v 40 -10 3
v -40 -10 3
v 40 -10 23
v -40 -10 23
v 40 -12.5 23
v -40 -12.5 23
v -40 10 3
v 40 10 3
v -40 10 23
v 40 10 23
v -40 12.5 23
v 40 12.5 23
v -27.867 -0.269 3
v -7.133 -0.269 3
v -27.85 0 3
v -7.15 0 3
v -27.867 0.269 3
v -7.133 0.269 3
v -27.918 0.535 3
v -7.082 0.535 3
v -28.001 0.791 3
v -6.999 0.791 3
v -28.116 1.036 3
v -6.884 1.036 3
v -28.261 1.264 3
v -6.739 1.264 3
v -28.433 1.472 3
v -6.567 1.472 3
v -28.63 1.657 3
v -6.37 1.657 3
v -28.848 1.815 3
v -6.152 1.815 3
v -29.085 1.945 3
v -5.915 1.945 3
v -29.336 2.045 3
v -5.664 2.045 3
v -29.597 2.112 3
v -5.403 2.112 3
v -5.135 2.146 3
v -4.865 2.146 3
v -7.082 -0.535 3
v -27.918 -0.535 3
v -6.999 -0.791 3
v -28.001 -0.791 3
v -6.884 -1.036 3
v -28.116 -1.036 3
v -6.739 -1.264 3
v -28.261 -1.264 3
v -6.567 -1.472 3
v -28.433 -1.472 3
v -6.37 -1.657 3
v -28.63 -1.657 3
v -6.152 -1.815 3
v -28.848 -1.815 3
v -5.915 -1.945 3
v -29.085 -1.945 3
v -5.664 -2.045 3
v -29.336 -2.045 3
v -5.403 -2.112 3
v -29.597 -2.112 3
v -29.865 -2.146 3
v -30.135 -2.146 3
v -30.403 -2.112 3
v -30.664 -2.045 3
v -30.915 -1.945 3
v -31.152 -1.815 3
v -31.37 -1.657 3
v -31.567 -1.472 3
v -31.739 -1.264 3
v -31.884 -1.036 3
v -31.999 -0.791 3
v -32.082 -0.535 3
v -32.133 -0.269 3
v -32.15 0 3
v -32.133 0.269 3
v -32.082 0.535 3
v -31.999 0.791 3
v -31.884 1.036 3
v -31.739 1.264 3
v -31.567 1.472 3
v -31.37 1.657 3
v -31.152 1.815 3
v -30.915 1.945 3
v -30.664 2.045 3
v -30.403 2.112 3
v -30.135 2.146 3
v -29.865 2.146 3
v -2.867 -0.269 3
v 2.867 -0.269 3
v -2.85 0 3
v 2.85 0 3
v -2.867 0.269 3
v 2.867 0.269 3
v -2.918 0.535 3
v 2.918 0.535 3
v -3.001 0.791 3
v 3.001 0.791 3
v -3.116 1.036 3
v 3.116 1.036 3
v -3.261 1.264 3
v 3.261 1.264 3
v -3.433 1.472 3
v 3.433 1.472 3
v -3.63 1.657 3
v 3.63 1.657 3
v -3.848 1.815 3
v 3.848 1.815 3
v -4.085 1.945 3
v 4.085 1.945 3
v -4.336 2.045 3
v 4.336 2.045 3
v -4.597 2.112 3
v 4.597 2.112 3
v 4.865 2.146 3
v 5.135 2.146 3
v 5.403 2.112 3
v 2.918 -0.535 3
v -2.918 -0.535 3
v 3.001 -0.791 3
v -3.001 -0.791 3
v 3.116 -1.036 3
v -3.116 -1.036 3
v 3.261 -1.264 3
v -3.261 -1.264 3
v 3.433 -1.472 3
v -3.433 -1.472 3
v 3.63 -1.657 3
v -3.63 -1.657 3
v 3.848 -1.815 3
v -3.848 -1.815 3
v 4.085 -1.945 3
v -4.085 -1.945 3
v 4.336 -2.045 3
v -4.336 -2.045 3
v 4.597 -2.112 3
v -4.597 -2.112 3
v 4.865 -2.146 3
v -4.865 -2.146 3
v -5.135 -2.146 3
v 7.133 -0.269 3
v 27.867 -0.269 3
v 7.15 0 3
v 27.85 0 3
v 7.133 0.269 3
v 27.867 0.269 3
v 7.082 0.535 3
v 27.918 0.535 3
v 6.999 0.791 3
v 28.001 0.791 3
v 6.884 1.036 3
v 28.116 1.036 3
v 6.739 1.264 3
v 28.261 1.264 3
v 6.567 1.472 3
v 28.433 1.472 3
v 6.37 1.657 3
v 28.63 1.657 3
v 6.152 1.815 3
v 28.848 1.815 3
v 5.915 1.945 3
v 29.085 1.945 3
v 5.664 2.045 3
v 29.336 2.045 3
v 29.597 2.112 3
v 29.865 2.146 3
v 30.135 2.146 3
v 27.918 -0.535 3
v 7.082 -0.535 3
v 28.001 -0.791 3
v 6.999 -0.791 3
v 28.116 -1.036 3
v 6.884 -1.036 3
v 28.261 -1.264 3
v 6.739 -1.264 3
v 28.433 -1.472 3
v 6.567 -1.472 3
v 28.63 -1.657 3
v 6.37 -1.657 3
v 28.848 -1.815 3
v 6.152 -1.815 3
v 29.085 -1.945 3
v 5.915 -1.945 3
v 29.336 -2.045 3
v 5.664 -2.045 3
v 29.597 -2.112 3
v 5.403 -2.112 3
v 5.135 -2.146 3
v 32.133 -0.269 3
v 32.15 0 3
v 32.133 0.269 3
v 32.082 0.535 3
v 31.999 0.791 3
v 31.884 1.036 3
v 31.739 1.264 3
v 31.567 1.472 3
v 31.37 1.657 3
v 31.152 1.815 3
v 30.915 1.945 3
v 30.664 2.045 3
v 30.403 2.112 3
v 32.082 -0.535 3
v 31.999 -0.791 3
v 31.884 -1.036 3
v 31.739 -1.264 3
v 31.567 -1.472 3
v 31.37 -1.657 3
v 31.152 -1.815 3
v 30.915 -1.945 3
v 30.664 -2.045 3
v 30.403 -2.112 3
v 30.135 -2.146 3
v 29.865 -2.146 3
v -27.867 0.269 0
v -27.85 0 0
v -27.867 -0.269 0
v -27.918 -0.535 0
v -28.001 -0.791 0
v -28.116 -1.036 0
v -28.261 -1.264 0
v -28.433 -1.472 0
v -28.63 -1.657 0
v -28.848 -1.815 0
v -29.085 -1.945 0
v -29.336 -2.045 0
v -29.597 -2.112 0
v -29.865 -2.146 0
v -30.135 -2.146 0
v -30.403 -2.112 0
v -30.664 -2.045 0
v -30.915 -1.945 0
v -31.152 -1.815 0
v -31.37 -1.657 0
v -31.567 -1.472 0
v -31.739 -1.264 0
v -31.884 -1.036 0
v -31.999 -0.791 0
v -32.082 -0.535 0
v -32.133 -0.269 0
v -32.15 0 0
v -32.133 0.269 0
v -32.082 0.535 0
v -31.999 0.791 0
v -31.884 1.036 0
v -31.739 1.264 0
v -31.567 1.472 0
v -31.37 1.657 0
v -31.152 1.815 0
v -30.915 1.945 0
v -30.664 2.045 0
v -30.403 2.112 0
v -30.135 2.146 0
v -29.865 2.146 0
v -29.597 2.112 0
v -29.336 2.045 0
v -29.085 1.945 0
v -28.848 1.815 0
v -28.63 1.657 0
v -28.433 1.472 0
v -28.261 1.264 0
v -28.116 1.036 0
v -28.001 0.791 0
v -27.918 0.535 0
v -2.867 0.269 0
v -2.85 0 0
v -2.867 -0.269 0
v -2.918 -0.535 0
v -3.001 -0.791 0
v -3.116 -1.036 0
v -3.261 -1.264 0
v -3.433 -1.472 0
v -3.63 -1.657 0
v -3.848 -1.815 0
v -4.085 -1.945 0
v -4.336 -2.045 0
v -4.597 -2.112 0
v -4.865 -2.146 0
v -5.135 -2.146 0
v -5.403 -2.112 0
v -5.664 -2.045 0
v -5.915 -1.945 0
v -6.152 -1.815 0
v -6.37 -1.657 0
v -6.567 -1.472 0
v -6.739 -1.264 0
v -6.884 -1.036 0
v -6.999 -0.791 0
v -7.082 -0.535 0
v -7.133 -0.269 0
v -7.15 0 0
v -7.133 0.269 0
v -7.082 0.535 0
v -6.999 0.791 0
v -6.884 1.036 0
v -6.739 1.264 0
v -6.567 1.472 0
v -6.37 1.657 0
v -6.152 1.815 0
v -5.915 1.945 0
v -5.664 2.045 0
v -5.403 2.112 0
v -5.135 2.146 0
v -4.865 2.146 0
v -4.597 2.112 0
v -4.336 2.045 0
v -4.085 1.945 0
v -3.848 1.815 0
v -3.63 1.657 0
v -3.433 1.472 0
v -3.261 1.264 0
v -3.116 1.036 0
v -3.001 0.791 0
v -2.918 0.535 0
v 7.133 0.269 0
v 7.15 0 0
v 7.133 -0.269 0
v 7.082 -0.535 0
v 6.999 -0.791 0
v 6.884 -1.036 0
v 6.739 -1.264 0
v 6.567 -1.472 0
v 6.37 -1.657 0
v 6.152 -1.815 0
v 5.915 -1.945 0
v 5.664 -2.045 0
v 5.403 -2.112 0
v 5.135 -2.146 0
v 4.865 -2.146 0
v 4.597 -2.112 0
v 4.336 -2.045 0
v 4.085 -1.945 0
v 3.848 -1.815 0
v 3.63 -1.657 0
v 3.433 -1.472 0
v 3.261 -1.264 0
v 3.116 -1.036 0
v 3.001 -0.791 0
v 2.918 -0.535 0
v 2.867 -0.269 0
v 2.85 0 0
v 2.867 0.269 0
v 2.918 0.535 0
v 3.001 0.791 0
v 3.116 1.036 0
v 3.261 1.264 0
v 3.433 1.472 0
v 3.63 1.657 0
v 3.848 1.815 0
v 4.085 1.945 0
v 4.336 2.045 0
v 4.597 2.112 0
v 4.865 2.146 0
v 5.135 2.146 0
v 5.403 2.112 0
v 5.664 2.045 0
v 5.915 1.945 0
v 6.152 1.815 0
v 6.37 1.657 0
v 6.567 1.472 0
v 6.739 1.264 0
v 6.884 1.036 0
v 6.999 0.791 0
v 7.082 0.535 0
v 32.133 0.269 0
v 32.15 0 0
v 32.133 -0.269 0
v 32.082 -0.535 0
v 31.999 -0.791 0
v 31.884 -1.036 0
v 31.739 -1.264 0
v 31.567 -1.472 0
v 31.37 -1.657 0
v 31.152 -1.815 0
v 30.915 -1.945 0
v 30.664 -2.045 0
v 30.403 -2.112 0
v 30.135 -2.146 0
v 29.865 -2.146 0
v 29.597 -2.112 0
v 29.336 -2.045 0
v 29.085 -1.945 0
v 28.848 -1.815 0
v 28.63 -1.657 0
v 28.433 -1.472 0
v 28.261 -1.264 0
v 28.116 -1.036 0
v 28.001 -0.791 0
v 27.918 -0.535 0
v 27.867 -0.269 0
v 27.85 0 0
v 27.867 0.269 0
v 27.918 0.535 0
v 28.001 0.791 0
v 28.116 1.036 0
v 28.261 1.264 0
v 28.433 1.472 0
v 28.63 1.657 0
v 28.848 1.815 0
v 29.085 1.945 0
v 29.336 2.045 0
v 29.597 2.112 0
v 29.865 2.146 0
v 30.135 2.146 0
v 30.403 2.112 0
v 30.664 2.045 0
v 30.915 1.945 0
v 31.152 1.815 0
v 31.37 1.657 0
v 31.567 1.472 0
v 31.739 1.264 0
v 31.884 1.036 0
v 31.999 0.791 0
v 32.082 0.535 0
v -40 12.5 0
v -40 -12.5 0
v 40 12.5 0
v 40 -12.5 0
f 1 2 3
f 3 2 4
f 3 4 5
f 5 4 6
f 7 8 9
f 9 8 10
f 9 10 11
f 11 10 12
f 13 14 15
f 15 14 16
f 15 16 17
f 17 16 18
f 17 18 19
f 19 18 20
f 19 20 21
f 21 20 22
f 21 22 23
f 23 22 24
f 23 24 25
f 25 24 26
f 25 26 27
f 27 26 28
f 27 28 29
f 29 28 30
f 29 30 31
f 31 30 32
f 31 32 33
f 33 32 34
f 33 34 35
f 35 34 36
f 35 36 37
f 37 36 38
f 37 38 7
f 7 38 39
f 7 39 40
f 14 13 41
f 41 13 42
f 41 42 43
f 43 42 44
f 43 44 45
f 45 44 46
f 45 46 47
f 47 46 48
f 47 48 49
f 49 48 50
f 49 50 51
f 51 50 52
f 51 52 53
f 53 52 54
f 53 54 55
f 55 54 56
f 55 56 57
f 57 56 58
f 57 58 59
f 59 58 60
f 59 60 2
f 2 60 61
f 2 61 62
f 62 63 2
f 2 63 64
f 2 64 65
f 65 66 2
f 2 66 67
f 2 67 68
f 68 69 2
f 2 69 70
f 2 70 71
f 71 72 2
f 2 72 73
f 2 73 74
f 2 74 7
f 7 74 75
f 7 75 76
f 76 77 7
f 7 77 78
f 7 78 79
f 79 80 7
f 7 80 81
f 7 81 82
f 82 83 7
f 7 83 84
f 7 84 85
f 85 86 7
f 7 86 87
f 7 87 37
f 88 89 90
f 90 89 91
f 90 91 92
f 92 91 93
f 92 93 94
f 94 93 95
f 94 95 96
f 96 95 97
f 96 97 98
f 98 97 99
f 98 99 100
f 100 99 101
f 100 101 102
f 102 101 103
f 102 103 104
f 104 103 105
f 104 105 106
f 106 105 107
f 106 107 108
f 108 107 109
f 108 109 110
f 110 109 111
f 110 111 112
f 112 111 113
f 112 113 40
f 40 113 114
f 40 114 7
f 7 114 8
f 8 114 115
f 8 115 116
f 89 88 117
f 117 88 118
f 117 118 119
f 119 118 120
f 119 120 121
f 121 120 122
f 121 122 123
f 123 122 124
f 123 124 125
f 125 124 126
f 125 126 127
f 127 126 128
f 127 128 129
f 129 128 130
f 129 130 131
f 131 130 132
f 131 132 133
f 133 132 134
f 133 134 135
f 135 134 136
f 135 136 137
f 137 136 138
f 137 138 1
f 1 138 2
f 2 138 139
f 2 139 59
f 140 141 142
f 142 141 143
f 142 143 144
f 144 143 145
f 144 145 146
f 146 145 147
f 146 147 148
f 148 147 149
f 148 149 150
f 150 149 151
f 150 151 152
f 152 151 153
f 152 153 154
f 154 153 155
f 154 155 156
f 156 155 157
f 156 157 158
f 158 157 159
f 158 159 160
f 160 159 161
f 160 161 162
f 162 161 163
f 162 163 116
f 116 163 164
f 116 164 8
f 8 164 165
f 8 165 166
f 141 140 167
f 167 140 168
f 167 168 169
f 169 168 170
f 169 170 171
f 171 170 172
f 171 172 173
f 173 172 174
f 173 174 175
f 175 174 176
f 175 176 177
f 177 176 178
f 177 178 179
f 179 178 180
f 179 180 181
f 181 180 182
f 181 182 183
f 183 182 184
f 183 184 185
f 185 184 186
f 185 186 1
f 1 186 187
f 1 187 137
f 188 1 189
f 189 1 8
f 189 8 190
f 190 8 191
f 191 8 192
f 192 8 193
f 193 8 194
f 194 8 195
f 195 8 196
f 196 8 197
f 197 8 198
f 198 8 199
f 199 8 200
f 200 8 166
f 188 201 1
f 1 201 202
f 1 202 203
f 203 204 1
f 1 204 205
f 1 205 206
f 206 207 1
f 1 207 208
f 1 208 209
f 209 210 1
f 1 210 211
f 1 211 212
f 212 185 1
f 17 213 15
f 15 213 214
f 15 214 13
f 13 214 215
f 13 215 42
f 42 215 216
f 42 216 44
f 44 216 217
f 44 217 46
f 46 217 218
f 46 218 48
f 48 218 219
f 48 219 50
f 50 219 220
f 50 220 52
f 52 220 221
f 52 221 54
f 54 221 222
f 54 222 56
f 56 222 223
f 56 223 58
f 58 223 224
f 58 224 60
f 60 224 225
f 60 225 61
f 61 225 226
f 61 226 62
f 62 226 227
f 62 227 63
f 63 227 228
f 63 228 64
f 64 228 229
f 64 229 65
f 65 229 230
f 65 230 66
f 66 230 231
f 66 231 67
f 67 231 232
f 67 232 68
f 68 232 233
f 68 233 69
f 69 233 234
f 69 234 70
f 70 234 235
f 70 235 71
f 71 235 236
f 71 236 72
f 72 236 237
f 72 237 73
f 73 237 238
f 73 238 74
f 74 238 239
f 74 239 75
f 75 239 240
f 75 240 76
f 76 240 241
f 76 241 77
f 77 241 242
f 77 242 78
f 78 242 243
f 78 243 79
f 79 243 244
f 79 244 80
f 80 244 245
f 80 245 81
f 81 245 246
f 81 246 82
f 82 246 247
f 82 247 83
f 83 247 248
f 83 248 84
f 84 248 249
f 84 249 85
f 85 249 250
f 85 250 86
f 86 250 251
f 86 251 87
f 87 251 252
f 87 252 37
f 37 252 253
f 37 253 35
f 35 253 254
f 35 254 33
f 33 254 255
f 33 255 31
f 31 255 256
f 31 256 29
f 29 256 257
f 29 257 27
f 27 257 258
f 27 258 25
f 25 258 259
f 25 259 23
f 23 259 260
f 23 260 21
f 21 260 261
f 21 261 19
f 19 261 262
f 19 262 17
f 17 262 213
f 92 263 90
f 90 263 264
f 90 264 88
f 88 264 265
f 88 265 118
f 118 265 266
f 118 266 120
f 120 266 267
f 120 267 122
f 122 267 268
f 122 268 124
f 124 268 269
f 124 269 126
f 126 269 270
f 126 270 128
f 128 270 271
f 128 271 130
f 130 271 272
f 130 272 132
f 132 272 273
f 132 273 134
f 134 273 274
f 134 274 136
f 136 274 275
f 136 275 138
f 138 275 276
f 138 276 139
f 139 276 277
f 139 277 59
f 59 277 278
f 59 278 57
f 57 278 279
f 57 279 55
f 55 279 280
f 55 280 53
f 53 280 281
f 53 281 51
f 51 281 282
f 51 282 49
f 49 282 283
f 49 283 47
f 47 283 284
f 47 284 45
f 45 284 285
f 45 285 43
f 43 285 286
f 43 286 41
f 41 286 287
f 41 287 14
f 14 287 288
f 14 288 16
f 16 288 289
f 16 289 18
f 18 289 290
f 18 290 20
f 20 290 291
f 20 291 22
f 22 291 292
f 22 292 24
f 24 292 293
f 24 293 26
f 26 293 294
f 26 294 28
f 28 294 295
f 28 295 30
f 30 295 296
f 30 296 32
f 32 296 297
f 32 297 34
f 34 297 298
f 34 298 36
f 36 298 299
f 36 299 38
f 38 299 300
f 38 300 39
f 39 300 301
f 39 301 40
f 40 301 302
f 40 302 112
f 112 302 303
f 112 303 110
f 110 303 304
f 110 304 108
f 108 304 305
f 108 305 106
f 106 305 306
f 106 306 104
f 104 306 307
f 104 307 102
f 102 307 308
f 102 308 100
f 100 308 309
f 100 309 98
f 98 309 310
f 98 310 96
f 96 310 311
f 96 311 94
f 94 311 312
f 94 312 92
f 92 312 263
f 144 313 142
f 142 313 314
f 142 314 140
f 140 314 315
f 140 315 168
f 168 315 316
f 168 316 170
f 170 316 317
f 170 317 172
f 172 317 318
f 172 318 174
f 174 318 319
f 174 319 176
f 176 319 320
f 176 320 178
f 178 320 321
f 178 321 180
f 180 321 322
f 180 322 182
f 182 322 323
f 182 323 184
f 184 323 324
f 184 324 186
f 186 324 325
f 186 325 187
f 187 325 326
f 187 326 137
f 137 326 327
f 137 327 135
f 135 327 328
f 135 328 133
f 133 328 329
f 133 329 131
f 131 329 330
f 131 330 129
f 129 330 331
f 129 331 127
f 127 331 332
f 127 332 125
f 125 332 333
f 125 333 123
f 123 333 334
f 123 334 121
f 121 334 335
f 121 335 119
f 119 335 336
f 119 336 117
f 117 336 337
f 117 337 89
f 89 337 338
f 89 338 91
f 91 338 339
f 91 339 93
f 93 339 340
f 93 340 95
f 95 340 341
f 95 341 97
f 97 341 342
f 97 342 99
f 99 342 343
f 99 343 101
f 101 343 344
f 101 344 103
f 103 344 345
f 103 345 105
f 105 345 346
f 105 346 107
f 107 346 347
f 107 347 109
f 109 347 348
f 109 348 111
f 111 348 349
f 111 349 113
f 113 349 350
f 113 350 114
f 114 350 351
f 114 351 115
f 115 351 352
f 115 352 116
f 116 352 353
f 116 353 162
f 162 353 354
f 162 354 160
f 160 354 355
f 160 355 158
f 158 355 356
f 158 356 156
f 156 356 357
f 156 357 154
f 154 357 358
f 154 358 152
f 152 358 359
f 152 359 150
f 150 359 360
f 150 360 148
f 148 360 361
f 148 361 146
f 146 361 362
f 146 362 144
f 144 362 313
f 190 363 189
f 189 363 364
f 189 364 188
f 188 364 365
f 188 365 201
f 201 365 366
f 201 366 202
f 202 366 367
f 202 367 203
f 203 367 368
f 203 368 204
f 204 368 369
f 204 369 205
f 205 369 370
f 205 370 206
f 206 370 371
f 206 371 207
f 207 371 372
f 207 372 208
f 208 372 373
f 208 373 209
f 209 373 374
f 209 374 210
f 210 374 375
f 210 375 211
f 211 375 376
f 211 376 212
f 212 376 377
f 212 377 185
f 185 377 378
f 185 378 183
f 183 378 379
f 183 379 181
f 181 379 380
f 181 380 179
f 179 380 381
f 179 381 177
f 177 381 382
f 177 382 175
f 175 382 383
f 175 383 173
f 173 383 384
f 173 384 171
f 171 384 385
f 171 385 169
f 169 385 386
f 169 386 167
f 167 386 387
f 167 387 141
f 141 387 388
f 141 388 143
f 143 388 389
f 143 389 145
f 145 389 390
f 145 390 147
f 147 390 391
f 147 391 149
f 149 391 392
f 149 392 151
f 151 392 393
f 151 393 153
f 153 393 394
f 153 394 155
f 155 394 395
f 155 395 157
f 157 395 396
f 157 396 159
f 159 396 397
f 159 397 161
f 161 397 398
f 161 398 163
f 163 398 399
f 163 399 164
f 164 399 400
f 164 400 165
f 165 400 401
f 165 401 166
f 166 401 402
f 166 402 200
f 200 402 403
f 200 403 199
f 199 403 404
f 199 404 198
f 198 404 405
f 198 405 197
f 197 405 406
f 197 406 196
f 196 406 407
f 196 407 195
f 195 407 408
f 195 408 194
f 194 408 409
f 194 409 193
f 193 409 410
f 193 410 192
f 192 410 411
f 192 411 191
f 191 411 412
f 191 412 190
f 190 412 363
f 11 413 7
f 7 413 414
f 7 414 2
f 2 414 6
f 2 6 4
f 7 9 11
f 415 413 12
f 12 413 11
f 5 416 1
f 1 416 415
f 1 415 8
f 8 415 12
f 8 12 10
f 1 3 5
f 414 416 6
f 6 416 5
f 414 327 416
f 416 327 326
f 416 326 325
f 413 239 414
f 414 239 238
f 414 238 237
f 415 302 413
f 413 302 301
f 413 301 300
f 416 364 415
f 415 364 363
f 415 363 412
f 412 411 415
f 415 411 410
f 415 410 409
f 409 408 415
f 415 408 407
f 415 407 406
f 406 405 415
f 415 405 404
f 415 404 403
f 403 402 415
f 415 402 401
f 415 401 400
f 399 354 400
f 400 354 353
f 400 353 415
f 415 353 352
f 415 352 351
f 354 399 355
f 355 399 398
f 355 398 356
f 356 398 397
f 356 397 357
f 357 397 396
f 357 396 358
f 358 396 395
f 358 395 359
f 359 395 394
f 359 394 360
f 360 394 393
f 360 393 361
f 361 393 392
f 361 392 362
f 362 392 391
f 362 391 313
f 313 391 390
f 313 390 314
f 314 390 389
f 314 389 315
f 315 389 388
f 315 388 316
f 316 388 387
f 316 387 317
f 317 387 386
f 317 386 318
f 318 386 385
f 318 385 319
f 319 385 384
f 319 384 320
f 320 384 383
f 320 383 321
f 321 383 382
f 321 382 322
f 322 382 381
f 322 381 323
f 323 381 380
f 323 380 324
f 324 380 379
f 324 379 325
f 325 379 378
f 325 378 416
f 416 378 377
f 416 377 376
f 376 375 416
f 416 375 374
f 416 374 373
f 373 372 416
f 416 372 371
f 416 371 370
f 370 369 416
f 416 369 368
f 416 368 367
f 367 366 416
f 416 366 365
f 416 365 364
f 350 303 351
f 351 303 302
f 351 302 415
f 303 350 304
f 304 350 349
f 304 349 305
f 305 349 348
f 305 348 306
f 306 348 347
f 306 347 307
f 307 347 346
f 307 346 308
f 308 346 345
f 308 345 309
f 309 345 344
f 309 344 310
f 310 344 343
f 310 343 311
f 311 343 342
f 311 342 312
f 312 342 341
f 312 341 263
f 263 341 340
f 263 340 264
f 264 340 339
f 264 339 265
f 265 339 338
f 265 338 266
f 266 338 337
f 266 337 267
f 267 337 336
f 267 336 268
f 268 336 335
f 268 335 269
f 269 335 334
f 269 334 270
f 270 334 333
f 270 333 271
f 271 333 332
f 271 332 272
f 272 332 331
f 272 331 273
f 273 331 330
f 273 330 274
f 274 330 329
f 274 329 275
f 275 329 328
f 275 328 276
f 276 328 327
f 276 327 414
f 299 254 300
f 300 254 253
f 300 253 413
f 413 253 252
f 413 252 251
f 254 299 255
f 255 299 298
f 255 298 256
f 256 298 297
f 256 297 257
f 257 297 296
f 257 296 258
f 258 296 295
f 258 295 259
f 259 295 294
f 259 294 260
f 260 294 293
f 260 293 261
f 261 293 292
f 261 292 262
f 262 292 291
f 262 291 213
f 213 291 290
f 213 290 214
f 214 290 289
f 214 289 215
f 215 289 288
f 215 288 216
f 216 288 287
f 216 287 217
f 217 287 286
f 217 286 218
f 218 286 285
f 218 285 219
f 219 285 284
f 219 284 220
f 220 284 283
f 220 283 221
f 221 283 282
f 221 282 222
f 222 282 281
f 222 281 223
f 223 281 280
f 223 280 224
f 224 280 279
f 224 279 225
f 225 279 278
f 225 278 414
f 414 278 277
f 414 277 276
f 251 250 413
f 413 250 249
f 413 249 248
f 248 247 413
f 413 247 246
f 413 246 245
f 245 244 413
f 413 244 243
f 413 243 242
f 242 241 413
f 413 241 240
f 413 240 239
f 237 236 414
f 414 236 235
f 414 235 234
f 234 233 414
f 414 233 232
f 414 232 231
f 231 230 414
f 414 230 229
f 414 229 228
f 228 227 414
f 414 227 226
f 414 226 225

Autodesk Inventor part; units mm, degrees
ref_plane "YZ Plane" through (0, 0, 0) normal (1, 0, 0) x (0, 1, 0)
ref_plane "XZ Plane" through (0, 0, 0) normal (0, 1, 0) x (-1, 0, 0)
ref_plane "XY Plane" through (0, 0, 0) normal (0, 0, 1) x (1, 0, 0)
sketch "Sketch1" plane through (0, 0, 0) normal (0, 0, 1) x (1, 0, 0)
  line L0 (-40, 12.5) -> (40, 12.5)
  line L1 (40, 12.5) -> (40, -12.5)
  line L2 (40, -12.5) -> (-40, -12.5)
  line L3 (-40, -12.5) -> (-40, 12.5)
  circle A0 centre (-30, 0) radius 2.15
  circle A1 centre (-5, 0) radius 2.15
  circle A2 centre (5, 0) radius 2.15
  circle A3 centre (30, 0) radius 2.15
  point P0 (0, 0)
  point P1 (0, 12.5)
  point P2 (-40, 0)
  dimension "d0" = 25
  dimension "d1" = 80
  dimension "d9" = 4.3
  dimension "d10" = 5
  dimension "d11" = 5
  dimension "d12" = 10
  dimension "d13" = 10
extrude "Extrusion1" add sketch "Sketch1" along normal blind 3
sketch "Sketch2" plane through (0, 0, 3) normal (0, 0, 1) x (1, 0, 0)
  line L0 (-40, -12.5) -> (40, -12.5) projected
  line L1 (40, -12.5) -> (40, 12.5) projected
  line L2 (40, 12.5) -> (-40, 12.5) projected
  line L3 (-40, 12.5) -> (-40, -12.5) projected
  line L4 (-40, 12.5) -> (-40, -12.5) projected
  line L5 (-40, 10) -> (40, 10)
  line L6 (40, -12.5) -> (40, 12.5) projected
  line L7 (40, -12.5) -> (40, 12.5) projected
  line L8 (40, -10) -> (-40, -10)
  point P0 (0, 0)
  dimension "d4" = 2.5
  dimension "d5" = 2.5
  dimension "d6" = 20
extrude "Extrusion2" add sketch "Sketch2" along normal blind 20 contours L3 L8 L1 L0 | L3 L2 L1 L5
equation "\"d11\" = d10"
equation "\"d12\" = 2 * d10"
equation "\"d13\" = d12"
equation "\"d5\" = d4"
properties part number "Verbinder"
